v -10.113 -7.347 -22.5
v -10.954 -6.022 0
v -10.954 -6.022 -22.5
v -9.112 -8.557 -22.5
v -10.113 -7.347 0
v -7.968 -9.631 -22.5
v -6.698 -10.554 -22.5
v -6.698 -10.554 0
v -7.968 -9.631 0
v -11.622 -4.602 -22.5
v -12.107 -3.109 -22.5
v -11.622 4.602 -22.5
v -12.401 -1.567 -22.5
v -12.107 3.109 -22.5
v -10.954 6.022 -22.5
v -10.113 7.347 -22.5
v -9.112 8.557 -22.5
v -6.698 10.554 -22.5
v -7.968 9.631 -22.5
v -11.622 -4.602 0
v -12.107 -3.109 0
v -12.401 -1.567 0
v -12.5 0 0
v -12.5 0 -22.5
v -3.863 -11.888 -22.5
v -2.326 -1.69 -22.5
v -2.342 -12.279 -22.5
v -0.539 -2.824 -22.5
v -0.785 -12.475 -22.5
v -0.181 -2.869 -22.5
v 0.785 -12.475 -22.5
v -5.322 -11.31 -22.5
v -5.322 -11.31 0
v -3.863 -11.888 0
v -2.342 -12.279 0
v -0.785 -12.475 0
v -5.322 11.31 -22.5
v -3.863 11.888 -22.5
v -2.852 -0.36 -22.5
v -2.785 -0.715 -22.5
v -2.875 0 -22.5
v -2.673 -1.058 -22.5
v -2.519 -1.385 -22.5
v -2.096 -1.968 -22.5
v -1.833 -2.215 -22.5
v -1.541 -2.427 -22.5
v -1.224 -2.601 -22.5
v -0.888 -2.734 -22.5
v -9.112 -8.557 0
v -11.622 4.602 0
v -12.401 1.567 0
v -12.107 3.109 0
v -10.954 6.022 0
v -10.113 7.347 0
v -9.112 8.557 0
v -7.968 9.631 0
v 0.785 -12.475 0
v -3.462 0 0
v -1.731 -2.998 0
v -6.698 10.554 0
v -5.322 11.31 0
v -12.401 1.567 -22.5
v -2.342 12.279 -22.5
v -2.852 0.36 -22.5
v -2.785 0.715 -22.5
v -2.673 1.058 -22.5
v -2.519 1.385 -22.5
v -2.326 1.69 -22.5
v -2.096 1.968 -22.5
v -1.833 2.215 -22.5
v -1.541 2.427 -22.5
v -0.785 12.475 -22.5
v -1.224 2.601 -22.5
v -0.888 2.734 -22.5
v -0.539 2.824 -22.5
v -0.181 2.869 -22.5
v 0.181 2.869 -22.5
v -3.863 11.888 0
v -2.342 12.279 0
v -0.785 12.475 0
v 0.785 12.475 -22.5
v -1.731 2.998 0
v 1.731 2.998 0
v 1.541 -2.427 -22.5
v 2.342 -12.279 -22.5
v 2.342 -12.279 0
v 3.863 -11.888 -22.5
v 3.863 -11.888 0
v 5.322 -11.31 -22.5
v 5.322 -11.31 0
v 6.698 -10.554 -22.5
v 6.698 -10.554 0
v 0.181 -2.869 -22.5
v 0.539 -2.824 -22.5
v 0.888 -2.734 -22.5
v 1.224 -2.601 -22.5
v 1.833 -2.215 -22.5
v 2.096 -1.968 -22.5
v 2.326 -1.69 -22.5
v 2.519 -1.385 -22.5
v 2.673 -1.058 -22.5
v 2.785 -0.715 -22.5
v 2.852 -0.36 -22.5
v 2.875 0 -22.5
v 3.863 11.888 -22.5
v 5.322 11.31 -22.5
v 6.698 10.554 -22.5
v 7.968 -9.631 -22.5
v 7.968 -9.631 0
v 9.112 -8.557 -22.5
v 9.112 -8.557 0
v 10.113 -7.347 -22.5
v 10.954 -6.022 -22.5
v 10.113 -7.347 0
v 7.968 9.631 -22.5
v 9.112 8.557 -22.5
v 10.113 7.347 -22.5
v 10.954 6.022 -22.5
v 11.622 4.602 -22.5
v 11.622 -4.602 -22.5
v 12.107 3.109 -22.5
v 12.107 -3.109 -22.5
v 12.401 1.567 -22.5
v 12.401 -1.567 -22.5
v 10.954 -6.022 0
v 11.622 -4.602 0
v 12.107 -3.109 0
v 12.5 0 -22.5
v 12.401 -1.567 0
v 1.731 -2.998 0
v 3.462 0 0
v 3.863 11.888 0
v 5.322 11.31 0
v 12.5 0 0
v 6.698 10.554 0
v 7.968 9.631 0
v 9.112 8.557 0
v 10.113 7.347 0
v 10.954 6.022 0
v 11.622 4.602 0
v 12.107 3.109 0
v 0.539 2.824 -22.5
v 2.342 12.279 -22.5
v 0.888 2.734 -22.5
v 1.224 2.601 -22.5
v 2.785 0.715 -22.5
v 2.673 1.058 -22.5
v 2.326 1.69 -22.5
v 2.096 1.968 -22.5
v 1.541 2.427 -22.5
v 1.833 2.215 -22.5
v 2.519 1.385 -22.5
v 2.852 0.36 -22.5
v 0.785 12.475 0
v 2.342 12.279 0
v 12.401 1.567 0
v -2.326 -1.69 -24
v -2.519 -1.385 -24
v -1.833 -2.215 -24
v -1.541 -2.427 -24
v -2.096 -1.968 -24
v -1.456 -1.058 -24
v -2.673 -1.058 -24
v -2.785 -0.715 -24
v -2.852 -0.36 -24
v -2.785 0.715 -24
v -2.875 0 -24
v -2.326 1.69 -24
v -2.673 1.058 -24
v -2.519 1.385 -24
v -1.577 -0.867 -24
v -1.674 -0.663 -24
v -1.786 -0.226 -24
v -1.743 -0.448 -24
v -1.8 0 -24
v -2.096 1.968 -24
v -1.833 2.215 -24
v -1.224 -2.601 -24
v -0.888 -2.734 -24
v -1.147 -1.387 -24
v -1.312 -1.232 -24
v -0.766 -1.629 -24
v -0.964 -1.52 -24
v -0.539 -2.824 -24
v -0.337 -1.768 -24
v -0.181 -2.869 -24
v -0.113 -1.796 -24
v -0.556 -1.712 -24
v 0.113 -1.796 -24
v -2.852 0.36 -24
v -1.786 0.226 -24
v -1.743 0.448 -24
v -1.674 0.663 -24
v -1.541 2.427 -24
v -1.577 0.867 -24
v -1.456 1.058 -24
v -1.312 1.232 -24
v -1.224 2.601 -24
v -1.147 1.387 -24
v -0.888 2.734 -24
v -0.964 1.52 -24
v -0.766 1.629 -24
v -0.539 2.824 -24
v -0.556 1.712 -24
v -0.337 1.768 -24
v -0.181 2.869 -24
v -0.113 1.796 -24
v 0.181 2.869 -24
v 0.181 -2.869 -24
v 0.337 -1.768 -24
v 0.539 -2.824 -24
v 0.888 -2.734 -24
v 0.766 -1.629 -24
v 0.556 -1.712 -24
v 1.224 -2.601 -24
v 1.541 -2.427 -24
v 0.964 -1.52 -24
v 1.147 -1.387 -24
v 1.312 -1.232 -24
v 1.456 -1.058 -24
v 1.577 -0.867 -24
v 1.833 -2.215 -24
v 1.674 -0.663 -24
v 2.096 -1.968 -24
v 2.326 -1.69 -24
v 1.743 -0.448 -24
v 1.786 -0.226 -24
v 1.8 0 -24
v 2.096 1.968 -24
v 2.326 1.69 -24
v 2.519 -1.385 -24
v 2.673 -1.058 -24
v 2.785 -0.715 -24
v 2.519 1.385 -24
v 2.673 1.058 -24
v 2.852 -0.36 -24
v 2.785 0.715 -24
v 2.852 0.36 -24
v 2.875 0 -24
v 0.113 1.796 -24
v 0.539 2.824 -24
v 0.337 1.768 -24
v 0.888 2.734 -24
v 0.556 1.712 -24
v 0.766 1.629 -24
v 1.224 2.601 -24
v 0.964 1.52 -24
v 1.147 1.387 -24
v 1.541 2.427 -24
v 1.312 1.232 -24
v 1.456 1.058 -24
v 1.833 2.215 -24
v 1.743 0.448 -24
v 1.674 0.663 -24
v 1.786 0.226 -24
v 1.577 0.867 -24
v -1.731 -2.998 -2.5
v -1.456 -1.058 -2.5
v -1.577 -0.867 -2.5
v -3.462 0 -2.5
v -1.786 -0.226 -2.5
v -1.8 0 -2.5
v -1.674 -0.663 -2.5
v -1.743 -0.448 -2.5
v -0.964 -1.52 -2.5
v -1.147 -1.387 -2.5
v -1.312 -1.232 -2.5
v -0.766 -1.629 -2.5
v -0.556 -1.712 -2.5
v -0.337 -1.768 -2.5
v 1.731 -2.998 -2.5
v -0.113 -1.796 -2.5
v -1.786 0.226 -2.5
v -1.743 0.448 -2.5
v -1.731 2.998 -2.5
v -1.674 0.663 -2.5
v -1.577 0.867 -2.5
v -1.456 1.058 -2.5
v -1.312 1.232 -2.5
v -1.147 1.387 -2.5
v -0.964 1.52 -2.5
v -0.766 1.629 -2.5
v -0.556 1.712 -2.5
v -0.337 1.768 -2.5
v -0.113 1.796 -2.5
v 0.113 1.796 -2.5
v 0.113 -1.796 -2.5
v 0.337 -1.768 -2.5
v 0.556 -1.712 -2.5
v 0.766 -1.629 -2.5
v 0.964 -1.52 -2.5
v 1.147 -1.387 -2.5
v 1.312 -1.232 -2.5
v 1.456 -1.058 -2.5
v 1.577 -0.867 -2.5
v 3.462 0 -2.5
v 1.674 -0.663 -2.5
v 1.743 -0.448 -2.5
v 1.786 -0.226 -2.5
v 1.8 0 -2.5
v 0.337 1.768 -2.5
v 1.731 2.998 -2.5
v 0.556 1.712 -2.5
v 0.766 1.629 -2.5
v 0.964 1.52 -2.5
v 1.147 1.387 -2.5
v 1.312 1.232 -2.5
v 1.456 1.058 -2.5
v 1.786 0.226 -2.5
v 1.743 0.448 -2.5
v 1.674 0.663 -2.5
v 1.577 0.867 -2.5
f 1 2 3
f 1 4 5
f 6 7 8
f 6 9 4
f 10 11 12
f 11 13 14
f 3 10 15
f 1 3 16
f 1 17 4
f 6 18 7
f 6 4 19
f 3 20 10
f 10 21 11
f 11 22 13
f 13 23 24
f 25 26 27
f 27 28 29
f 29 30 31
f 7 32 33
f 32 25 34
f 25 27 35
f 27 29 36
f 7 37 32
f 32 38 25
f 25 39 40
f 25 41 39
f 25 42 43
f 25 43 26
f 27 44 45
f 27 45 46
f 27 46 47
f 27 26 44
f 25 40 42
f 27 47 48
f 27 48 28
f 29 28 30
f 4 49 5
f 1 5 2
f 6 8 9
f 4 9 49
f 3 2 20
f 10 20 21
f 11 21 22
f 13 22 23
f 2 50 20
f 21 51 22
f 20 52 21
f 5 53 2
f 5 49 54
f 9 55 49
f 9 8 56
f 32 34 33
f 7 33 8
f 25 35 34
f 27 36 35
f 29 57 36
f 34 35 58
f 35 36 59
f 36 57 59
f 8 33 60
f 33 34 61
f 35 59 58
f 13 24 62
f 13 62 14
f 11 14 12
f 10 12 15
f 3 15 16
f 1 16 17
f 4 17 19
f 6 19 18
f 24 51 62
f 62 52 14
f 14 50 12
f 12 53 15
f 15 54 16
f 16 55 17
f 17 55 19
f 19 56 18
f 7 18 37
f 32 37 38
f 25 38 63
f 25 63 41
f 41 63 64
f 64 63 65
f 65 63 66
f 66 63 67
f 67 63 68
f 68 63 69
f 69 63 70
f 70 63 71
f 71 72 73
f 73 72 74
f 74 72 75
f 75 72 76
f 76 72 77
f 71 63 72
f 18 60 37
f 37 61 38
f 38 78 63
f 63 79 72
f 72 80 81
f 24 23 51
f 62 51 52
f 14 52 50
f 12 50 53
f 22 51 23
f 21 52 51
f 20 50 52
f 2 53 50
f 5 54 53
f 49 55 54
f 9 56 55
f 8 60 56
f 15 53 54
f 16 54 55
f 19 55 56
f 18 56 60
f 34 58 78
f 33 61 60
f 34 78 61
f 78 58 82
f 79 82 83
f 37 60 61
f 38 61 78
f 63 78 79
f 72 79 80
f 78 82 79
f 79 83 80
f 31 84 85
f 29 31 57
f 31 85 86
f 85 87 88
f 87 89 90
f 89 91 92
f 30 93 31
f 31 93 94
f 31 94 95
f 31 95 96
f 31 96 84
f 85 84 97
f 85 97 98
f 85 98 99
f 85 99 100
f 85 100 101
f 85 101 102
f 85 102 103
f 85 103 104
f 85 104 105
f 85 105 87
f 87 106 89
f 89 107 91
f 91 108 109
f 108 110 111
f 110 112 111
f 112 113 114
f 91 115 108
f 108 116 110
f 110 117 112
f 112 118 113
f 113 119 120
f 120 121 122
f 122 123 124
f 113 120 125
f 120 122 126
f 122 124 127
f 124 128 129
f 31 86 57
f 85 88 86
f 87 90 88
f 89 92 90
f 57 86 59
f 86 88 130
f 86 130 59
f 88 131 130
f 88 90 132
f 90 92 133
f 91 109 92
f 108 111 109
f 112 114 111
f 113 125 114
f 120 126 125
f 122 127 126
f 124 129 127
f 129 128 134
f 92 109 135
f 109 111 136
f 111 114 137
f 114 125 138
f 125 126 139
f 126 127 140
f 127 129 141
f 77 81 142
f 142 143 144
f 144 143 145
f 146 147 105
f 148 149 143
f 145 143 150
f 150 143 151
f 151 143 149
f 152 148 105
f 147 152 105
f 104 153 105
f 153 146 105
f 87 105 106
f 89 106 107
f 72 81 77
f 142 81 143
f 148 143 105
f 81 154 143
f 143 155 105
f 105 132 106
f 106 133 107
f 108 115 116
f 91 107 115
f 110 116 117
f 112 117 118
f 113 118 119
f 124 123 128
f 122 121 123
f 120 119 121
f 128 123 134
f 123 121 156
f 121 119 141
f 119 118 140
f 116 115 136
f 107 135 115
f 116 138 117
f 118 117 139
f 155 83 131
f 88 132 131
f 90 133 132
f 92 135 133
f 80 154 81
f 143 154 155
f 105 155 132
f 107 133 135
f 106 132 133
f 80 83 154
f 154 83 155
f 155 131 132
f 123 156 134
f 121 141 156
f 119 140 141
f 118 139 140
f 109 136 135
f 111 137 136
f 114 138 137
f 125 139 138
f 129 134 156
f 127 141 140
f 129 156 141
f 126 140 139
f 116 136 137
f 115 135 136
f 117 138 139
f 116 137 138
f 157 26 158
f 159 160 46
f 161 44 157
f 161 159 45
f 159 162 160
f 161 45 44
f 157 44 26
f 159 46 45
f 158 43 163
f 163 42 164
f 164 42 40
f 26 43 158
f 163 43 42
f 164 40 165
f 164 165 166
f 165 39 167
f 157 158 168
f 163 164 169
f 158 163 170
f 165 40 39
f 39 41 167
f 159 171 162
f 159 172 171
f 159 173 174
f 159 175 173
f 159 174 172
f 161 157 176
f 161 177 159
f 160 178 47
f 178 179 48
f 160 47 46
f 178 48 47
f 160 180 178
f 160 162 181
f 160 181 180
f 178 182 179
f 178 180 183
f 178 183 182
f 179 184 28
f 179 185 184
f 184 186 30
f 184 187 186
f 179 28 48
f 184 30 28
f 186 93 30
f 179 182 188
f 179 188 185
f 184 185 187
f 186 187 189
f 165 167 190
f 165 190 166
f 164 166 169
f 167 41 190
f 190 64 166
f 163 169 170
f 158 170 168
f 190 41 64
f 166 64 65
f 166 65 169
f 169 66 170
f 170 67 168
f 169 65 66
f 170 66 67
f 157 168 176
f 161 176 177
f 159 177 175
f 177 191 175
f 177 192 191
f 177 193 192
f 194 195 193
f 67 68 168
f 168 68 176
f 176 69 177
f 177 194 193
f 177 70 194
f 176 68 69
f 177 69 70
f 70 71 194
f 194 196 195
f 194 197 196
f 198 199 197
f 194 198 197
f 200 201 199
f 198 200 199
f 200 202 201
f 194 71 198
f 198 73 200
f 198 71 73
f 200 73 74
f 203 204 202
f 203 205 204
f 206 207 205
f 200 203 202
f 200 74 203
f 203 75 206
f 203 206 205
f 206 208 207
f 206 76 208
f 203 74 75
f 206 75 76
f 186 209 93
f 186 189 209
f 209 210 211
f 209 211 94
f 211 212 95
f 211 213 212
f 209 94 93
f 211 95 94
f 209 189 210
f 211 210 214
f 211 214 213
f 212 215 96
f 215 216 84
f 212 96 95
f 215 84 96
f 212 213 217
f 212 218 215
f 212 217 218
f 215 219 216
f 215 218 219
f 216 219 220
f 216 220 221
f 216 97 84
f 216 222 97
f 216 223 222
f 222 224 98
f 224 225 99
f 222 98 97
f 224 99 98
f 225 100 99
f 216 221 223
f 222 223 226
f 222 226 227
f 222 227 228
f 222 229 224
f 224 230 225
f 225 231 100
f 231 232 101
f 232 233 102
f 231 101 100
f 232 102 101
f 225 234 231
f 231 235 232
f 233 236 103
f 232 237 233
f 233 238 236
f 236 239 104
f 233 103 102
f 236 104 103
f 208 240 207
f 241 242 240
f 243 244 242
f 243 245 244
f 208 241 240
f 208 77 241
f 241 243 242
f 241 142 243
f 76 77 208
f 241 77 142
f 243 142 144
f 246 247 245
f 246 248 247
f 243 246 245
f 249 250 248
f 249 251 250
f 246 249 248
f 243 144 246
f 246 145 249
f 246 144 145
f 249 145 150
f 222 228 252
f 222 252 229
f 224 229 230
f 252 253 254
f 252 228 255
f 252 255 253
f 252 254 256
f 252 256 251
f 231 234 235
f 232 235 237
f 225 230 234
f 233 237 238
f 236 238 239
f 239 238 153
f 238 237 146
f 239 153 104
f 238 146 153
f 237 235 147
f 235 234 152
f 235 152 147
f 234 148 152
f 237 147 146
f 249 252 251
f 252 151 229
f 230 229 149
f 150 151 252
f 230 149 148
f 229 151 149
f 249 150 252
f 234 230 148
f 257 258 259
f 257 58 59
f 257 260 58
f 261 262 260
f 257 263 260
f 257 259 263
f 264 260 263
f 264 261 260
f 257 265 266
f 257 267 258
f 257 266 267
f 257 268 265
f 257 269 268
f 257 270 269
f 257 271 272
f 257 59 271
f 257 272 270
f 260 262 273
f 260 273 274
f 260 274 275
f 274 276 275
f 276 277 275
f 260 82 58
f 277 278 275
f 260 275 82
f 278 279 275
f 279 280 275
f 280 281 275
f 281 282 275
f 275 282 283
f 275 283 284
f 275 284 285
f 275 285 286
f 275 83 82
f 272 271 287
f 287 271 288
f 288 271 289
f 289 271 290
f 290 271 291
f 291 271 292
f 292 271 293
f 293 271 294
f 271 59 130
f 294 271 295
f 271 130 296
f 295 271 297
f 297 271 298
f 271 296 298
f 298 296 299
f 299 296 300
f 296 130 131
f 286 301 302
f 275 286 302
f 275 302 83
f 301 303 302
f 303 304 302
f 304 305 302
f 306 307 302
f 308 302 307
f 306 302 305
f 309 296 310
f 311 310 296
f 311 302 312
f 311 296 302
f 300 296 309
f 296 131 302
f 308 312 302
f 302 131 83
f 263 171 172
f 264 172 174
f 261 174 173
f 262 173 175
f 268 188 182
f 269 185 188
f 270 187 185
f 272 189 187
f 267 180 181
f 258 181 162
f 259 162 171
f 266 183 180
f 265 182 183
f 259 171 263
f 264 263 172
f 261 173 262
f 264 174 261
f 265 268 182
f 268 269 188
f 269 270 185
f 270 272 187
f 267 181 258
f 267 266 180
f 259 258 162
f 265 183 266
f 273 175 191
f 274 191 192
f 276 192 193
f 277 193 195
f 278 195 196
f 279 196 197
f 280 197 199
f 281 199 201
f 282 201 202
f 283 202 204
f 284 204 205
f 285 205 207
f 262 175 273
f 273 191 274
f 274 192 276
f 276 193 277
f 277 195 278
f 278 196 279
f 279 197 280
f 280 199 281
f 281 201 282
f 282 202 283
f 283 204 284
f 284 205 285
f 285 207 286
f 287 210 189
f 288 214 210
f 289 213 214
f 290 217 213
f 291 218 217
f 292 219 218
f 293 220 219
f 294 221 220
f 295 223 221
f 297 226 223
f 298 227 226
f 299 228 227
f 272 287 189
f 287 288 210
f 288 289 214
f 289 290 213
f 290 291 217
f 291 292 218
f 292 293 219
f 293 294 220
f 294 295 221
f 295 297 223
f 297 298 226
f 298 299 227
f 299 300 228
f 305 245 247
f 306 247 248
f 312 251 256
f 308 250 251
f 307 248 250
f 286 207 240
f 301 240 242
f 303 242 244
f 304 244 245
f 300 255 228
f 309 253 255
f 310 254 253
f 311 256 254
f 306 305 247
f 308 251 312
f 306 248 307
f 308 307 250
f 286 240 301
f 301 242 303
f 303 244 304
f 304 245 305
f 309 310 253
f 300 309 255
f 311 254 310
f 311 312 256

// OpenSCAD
$fn = 50;


difference() {
	union() {
		translate(v = [0, 0, -22.5000000000]) {
			cylinder(h = 22.5000000000, r = 12.5000000000);
		}
		#translate(v = [0, 0, -24.0000000000]) {
			cylinder(h = 24, r = 2.8750000000);
		}
	}
	union() {
		translate(v = [0, 0, 0]) {
			rotate(a = [0, 0, 0]) {
				difference() {
					union() {
						translate(v = [0, 0, -2.5000000000]) {
							linear_extrude(height = 2.5000000000) {
								polygon(points = [[3.4620000000, 0.0000000000], [1.7310000000, 2.9981799479], [-1.7310000000, 2.9981799479], [-3.4620000000, 0.0000000000], [-1.7310000000, -2.9981799479], [1.7310000000, -2.9981799479]]);
							}
						}
					}
					union();
				}
			}
		}
		#translate(v = [0, 0, -100.0000000000]) {
			cylinder(h = 200, r = 1.8000000000);
		}
	}
}
